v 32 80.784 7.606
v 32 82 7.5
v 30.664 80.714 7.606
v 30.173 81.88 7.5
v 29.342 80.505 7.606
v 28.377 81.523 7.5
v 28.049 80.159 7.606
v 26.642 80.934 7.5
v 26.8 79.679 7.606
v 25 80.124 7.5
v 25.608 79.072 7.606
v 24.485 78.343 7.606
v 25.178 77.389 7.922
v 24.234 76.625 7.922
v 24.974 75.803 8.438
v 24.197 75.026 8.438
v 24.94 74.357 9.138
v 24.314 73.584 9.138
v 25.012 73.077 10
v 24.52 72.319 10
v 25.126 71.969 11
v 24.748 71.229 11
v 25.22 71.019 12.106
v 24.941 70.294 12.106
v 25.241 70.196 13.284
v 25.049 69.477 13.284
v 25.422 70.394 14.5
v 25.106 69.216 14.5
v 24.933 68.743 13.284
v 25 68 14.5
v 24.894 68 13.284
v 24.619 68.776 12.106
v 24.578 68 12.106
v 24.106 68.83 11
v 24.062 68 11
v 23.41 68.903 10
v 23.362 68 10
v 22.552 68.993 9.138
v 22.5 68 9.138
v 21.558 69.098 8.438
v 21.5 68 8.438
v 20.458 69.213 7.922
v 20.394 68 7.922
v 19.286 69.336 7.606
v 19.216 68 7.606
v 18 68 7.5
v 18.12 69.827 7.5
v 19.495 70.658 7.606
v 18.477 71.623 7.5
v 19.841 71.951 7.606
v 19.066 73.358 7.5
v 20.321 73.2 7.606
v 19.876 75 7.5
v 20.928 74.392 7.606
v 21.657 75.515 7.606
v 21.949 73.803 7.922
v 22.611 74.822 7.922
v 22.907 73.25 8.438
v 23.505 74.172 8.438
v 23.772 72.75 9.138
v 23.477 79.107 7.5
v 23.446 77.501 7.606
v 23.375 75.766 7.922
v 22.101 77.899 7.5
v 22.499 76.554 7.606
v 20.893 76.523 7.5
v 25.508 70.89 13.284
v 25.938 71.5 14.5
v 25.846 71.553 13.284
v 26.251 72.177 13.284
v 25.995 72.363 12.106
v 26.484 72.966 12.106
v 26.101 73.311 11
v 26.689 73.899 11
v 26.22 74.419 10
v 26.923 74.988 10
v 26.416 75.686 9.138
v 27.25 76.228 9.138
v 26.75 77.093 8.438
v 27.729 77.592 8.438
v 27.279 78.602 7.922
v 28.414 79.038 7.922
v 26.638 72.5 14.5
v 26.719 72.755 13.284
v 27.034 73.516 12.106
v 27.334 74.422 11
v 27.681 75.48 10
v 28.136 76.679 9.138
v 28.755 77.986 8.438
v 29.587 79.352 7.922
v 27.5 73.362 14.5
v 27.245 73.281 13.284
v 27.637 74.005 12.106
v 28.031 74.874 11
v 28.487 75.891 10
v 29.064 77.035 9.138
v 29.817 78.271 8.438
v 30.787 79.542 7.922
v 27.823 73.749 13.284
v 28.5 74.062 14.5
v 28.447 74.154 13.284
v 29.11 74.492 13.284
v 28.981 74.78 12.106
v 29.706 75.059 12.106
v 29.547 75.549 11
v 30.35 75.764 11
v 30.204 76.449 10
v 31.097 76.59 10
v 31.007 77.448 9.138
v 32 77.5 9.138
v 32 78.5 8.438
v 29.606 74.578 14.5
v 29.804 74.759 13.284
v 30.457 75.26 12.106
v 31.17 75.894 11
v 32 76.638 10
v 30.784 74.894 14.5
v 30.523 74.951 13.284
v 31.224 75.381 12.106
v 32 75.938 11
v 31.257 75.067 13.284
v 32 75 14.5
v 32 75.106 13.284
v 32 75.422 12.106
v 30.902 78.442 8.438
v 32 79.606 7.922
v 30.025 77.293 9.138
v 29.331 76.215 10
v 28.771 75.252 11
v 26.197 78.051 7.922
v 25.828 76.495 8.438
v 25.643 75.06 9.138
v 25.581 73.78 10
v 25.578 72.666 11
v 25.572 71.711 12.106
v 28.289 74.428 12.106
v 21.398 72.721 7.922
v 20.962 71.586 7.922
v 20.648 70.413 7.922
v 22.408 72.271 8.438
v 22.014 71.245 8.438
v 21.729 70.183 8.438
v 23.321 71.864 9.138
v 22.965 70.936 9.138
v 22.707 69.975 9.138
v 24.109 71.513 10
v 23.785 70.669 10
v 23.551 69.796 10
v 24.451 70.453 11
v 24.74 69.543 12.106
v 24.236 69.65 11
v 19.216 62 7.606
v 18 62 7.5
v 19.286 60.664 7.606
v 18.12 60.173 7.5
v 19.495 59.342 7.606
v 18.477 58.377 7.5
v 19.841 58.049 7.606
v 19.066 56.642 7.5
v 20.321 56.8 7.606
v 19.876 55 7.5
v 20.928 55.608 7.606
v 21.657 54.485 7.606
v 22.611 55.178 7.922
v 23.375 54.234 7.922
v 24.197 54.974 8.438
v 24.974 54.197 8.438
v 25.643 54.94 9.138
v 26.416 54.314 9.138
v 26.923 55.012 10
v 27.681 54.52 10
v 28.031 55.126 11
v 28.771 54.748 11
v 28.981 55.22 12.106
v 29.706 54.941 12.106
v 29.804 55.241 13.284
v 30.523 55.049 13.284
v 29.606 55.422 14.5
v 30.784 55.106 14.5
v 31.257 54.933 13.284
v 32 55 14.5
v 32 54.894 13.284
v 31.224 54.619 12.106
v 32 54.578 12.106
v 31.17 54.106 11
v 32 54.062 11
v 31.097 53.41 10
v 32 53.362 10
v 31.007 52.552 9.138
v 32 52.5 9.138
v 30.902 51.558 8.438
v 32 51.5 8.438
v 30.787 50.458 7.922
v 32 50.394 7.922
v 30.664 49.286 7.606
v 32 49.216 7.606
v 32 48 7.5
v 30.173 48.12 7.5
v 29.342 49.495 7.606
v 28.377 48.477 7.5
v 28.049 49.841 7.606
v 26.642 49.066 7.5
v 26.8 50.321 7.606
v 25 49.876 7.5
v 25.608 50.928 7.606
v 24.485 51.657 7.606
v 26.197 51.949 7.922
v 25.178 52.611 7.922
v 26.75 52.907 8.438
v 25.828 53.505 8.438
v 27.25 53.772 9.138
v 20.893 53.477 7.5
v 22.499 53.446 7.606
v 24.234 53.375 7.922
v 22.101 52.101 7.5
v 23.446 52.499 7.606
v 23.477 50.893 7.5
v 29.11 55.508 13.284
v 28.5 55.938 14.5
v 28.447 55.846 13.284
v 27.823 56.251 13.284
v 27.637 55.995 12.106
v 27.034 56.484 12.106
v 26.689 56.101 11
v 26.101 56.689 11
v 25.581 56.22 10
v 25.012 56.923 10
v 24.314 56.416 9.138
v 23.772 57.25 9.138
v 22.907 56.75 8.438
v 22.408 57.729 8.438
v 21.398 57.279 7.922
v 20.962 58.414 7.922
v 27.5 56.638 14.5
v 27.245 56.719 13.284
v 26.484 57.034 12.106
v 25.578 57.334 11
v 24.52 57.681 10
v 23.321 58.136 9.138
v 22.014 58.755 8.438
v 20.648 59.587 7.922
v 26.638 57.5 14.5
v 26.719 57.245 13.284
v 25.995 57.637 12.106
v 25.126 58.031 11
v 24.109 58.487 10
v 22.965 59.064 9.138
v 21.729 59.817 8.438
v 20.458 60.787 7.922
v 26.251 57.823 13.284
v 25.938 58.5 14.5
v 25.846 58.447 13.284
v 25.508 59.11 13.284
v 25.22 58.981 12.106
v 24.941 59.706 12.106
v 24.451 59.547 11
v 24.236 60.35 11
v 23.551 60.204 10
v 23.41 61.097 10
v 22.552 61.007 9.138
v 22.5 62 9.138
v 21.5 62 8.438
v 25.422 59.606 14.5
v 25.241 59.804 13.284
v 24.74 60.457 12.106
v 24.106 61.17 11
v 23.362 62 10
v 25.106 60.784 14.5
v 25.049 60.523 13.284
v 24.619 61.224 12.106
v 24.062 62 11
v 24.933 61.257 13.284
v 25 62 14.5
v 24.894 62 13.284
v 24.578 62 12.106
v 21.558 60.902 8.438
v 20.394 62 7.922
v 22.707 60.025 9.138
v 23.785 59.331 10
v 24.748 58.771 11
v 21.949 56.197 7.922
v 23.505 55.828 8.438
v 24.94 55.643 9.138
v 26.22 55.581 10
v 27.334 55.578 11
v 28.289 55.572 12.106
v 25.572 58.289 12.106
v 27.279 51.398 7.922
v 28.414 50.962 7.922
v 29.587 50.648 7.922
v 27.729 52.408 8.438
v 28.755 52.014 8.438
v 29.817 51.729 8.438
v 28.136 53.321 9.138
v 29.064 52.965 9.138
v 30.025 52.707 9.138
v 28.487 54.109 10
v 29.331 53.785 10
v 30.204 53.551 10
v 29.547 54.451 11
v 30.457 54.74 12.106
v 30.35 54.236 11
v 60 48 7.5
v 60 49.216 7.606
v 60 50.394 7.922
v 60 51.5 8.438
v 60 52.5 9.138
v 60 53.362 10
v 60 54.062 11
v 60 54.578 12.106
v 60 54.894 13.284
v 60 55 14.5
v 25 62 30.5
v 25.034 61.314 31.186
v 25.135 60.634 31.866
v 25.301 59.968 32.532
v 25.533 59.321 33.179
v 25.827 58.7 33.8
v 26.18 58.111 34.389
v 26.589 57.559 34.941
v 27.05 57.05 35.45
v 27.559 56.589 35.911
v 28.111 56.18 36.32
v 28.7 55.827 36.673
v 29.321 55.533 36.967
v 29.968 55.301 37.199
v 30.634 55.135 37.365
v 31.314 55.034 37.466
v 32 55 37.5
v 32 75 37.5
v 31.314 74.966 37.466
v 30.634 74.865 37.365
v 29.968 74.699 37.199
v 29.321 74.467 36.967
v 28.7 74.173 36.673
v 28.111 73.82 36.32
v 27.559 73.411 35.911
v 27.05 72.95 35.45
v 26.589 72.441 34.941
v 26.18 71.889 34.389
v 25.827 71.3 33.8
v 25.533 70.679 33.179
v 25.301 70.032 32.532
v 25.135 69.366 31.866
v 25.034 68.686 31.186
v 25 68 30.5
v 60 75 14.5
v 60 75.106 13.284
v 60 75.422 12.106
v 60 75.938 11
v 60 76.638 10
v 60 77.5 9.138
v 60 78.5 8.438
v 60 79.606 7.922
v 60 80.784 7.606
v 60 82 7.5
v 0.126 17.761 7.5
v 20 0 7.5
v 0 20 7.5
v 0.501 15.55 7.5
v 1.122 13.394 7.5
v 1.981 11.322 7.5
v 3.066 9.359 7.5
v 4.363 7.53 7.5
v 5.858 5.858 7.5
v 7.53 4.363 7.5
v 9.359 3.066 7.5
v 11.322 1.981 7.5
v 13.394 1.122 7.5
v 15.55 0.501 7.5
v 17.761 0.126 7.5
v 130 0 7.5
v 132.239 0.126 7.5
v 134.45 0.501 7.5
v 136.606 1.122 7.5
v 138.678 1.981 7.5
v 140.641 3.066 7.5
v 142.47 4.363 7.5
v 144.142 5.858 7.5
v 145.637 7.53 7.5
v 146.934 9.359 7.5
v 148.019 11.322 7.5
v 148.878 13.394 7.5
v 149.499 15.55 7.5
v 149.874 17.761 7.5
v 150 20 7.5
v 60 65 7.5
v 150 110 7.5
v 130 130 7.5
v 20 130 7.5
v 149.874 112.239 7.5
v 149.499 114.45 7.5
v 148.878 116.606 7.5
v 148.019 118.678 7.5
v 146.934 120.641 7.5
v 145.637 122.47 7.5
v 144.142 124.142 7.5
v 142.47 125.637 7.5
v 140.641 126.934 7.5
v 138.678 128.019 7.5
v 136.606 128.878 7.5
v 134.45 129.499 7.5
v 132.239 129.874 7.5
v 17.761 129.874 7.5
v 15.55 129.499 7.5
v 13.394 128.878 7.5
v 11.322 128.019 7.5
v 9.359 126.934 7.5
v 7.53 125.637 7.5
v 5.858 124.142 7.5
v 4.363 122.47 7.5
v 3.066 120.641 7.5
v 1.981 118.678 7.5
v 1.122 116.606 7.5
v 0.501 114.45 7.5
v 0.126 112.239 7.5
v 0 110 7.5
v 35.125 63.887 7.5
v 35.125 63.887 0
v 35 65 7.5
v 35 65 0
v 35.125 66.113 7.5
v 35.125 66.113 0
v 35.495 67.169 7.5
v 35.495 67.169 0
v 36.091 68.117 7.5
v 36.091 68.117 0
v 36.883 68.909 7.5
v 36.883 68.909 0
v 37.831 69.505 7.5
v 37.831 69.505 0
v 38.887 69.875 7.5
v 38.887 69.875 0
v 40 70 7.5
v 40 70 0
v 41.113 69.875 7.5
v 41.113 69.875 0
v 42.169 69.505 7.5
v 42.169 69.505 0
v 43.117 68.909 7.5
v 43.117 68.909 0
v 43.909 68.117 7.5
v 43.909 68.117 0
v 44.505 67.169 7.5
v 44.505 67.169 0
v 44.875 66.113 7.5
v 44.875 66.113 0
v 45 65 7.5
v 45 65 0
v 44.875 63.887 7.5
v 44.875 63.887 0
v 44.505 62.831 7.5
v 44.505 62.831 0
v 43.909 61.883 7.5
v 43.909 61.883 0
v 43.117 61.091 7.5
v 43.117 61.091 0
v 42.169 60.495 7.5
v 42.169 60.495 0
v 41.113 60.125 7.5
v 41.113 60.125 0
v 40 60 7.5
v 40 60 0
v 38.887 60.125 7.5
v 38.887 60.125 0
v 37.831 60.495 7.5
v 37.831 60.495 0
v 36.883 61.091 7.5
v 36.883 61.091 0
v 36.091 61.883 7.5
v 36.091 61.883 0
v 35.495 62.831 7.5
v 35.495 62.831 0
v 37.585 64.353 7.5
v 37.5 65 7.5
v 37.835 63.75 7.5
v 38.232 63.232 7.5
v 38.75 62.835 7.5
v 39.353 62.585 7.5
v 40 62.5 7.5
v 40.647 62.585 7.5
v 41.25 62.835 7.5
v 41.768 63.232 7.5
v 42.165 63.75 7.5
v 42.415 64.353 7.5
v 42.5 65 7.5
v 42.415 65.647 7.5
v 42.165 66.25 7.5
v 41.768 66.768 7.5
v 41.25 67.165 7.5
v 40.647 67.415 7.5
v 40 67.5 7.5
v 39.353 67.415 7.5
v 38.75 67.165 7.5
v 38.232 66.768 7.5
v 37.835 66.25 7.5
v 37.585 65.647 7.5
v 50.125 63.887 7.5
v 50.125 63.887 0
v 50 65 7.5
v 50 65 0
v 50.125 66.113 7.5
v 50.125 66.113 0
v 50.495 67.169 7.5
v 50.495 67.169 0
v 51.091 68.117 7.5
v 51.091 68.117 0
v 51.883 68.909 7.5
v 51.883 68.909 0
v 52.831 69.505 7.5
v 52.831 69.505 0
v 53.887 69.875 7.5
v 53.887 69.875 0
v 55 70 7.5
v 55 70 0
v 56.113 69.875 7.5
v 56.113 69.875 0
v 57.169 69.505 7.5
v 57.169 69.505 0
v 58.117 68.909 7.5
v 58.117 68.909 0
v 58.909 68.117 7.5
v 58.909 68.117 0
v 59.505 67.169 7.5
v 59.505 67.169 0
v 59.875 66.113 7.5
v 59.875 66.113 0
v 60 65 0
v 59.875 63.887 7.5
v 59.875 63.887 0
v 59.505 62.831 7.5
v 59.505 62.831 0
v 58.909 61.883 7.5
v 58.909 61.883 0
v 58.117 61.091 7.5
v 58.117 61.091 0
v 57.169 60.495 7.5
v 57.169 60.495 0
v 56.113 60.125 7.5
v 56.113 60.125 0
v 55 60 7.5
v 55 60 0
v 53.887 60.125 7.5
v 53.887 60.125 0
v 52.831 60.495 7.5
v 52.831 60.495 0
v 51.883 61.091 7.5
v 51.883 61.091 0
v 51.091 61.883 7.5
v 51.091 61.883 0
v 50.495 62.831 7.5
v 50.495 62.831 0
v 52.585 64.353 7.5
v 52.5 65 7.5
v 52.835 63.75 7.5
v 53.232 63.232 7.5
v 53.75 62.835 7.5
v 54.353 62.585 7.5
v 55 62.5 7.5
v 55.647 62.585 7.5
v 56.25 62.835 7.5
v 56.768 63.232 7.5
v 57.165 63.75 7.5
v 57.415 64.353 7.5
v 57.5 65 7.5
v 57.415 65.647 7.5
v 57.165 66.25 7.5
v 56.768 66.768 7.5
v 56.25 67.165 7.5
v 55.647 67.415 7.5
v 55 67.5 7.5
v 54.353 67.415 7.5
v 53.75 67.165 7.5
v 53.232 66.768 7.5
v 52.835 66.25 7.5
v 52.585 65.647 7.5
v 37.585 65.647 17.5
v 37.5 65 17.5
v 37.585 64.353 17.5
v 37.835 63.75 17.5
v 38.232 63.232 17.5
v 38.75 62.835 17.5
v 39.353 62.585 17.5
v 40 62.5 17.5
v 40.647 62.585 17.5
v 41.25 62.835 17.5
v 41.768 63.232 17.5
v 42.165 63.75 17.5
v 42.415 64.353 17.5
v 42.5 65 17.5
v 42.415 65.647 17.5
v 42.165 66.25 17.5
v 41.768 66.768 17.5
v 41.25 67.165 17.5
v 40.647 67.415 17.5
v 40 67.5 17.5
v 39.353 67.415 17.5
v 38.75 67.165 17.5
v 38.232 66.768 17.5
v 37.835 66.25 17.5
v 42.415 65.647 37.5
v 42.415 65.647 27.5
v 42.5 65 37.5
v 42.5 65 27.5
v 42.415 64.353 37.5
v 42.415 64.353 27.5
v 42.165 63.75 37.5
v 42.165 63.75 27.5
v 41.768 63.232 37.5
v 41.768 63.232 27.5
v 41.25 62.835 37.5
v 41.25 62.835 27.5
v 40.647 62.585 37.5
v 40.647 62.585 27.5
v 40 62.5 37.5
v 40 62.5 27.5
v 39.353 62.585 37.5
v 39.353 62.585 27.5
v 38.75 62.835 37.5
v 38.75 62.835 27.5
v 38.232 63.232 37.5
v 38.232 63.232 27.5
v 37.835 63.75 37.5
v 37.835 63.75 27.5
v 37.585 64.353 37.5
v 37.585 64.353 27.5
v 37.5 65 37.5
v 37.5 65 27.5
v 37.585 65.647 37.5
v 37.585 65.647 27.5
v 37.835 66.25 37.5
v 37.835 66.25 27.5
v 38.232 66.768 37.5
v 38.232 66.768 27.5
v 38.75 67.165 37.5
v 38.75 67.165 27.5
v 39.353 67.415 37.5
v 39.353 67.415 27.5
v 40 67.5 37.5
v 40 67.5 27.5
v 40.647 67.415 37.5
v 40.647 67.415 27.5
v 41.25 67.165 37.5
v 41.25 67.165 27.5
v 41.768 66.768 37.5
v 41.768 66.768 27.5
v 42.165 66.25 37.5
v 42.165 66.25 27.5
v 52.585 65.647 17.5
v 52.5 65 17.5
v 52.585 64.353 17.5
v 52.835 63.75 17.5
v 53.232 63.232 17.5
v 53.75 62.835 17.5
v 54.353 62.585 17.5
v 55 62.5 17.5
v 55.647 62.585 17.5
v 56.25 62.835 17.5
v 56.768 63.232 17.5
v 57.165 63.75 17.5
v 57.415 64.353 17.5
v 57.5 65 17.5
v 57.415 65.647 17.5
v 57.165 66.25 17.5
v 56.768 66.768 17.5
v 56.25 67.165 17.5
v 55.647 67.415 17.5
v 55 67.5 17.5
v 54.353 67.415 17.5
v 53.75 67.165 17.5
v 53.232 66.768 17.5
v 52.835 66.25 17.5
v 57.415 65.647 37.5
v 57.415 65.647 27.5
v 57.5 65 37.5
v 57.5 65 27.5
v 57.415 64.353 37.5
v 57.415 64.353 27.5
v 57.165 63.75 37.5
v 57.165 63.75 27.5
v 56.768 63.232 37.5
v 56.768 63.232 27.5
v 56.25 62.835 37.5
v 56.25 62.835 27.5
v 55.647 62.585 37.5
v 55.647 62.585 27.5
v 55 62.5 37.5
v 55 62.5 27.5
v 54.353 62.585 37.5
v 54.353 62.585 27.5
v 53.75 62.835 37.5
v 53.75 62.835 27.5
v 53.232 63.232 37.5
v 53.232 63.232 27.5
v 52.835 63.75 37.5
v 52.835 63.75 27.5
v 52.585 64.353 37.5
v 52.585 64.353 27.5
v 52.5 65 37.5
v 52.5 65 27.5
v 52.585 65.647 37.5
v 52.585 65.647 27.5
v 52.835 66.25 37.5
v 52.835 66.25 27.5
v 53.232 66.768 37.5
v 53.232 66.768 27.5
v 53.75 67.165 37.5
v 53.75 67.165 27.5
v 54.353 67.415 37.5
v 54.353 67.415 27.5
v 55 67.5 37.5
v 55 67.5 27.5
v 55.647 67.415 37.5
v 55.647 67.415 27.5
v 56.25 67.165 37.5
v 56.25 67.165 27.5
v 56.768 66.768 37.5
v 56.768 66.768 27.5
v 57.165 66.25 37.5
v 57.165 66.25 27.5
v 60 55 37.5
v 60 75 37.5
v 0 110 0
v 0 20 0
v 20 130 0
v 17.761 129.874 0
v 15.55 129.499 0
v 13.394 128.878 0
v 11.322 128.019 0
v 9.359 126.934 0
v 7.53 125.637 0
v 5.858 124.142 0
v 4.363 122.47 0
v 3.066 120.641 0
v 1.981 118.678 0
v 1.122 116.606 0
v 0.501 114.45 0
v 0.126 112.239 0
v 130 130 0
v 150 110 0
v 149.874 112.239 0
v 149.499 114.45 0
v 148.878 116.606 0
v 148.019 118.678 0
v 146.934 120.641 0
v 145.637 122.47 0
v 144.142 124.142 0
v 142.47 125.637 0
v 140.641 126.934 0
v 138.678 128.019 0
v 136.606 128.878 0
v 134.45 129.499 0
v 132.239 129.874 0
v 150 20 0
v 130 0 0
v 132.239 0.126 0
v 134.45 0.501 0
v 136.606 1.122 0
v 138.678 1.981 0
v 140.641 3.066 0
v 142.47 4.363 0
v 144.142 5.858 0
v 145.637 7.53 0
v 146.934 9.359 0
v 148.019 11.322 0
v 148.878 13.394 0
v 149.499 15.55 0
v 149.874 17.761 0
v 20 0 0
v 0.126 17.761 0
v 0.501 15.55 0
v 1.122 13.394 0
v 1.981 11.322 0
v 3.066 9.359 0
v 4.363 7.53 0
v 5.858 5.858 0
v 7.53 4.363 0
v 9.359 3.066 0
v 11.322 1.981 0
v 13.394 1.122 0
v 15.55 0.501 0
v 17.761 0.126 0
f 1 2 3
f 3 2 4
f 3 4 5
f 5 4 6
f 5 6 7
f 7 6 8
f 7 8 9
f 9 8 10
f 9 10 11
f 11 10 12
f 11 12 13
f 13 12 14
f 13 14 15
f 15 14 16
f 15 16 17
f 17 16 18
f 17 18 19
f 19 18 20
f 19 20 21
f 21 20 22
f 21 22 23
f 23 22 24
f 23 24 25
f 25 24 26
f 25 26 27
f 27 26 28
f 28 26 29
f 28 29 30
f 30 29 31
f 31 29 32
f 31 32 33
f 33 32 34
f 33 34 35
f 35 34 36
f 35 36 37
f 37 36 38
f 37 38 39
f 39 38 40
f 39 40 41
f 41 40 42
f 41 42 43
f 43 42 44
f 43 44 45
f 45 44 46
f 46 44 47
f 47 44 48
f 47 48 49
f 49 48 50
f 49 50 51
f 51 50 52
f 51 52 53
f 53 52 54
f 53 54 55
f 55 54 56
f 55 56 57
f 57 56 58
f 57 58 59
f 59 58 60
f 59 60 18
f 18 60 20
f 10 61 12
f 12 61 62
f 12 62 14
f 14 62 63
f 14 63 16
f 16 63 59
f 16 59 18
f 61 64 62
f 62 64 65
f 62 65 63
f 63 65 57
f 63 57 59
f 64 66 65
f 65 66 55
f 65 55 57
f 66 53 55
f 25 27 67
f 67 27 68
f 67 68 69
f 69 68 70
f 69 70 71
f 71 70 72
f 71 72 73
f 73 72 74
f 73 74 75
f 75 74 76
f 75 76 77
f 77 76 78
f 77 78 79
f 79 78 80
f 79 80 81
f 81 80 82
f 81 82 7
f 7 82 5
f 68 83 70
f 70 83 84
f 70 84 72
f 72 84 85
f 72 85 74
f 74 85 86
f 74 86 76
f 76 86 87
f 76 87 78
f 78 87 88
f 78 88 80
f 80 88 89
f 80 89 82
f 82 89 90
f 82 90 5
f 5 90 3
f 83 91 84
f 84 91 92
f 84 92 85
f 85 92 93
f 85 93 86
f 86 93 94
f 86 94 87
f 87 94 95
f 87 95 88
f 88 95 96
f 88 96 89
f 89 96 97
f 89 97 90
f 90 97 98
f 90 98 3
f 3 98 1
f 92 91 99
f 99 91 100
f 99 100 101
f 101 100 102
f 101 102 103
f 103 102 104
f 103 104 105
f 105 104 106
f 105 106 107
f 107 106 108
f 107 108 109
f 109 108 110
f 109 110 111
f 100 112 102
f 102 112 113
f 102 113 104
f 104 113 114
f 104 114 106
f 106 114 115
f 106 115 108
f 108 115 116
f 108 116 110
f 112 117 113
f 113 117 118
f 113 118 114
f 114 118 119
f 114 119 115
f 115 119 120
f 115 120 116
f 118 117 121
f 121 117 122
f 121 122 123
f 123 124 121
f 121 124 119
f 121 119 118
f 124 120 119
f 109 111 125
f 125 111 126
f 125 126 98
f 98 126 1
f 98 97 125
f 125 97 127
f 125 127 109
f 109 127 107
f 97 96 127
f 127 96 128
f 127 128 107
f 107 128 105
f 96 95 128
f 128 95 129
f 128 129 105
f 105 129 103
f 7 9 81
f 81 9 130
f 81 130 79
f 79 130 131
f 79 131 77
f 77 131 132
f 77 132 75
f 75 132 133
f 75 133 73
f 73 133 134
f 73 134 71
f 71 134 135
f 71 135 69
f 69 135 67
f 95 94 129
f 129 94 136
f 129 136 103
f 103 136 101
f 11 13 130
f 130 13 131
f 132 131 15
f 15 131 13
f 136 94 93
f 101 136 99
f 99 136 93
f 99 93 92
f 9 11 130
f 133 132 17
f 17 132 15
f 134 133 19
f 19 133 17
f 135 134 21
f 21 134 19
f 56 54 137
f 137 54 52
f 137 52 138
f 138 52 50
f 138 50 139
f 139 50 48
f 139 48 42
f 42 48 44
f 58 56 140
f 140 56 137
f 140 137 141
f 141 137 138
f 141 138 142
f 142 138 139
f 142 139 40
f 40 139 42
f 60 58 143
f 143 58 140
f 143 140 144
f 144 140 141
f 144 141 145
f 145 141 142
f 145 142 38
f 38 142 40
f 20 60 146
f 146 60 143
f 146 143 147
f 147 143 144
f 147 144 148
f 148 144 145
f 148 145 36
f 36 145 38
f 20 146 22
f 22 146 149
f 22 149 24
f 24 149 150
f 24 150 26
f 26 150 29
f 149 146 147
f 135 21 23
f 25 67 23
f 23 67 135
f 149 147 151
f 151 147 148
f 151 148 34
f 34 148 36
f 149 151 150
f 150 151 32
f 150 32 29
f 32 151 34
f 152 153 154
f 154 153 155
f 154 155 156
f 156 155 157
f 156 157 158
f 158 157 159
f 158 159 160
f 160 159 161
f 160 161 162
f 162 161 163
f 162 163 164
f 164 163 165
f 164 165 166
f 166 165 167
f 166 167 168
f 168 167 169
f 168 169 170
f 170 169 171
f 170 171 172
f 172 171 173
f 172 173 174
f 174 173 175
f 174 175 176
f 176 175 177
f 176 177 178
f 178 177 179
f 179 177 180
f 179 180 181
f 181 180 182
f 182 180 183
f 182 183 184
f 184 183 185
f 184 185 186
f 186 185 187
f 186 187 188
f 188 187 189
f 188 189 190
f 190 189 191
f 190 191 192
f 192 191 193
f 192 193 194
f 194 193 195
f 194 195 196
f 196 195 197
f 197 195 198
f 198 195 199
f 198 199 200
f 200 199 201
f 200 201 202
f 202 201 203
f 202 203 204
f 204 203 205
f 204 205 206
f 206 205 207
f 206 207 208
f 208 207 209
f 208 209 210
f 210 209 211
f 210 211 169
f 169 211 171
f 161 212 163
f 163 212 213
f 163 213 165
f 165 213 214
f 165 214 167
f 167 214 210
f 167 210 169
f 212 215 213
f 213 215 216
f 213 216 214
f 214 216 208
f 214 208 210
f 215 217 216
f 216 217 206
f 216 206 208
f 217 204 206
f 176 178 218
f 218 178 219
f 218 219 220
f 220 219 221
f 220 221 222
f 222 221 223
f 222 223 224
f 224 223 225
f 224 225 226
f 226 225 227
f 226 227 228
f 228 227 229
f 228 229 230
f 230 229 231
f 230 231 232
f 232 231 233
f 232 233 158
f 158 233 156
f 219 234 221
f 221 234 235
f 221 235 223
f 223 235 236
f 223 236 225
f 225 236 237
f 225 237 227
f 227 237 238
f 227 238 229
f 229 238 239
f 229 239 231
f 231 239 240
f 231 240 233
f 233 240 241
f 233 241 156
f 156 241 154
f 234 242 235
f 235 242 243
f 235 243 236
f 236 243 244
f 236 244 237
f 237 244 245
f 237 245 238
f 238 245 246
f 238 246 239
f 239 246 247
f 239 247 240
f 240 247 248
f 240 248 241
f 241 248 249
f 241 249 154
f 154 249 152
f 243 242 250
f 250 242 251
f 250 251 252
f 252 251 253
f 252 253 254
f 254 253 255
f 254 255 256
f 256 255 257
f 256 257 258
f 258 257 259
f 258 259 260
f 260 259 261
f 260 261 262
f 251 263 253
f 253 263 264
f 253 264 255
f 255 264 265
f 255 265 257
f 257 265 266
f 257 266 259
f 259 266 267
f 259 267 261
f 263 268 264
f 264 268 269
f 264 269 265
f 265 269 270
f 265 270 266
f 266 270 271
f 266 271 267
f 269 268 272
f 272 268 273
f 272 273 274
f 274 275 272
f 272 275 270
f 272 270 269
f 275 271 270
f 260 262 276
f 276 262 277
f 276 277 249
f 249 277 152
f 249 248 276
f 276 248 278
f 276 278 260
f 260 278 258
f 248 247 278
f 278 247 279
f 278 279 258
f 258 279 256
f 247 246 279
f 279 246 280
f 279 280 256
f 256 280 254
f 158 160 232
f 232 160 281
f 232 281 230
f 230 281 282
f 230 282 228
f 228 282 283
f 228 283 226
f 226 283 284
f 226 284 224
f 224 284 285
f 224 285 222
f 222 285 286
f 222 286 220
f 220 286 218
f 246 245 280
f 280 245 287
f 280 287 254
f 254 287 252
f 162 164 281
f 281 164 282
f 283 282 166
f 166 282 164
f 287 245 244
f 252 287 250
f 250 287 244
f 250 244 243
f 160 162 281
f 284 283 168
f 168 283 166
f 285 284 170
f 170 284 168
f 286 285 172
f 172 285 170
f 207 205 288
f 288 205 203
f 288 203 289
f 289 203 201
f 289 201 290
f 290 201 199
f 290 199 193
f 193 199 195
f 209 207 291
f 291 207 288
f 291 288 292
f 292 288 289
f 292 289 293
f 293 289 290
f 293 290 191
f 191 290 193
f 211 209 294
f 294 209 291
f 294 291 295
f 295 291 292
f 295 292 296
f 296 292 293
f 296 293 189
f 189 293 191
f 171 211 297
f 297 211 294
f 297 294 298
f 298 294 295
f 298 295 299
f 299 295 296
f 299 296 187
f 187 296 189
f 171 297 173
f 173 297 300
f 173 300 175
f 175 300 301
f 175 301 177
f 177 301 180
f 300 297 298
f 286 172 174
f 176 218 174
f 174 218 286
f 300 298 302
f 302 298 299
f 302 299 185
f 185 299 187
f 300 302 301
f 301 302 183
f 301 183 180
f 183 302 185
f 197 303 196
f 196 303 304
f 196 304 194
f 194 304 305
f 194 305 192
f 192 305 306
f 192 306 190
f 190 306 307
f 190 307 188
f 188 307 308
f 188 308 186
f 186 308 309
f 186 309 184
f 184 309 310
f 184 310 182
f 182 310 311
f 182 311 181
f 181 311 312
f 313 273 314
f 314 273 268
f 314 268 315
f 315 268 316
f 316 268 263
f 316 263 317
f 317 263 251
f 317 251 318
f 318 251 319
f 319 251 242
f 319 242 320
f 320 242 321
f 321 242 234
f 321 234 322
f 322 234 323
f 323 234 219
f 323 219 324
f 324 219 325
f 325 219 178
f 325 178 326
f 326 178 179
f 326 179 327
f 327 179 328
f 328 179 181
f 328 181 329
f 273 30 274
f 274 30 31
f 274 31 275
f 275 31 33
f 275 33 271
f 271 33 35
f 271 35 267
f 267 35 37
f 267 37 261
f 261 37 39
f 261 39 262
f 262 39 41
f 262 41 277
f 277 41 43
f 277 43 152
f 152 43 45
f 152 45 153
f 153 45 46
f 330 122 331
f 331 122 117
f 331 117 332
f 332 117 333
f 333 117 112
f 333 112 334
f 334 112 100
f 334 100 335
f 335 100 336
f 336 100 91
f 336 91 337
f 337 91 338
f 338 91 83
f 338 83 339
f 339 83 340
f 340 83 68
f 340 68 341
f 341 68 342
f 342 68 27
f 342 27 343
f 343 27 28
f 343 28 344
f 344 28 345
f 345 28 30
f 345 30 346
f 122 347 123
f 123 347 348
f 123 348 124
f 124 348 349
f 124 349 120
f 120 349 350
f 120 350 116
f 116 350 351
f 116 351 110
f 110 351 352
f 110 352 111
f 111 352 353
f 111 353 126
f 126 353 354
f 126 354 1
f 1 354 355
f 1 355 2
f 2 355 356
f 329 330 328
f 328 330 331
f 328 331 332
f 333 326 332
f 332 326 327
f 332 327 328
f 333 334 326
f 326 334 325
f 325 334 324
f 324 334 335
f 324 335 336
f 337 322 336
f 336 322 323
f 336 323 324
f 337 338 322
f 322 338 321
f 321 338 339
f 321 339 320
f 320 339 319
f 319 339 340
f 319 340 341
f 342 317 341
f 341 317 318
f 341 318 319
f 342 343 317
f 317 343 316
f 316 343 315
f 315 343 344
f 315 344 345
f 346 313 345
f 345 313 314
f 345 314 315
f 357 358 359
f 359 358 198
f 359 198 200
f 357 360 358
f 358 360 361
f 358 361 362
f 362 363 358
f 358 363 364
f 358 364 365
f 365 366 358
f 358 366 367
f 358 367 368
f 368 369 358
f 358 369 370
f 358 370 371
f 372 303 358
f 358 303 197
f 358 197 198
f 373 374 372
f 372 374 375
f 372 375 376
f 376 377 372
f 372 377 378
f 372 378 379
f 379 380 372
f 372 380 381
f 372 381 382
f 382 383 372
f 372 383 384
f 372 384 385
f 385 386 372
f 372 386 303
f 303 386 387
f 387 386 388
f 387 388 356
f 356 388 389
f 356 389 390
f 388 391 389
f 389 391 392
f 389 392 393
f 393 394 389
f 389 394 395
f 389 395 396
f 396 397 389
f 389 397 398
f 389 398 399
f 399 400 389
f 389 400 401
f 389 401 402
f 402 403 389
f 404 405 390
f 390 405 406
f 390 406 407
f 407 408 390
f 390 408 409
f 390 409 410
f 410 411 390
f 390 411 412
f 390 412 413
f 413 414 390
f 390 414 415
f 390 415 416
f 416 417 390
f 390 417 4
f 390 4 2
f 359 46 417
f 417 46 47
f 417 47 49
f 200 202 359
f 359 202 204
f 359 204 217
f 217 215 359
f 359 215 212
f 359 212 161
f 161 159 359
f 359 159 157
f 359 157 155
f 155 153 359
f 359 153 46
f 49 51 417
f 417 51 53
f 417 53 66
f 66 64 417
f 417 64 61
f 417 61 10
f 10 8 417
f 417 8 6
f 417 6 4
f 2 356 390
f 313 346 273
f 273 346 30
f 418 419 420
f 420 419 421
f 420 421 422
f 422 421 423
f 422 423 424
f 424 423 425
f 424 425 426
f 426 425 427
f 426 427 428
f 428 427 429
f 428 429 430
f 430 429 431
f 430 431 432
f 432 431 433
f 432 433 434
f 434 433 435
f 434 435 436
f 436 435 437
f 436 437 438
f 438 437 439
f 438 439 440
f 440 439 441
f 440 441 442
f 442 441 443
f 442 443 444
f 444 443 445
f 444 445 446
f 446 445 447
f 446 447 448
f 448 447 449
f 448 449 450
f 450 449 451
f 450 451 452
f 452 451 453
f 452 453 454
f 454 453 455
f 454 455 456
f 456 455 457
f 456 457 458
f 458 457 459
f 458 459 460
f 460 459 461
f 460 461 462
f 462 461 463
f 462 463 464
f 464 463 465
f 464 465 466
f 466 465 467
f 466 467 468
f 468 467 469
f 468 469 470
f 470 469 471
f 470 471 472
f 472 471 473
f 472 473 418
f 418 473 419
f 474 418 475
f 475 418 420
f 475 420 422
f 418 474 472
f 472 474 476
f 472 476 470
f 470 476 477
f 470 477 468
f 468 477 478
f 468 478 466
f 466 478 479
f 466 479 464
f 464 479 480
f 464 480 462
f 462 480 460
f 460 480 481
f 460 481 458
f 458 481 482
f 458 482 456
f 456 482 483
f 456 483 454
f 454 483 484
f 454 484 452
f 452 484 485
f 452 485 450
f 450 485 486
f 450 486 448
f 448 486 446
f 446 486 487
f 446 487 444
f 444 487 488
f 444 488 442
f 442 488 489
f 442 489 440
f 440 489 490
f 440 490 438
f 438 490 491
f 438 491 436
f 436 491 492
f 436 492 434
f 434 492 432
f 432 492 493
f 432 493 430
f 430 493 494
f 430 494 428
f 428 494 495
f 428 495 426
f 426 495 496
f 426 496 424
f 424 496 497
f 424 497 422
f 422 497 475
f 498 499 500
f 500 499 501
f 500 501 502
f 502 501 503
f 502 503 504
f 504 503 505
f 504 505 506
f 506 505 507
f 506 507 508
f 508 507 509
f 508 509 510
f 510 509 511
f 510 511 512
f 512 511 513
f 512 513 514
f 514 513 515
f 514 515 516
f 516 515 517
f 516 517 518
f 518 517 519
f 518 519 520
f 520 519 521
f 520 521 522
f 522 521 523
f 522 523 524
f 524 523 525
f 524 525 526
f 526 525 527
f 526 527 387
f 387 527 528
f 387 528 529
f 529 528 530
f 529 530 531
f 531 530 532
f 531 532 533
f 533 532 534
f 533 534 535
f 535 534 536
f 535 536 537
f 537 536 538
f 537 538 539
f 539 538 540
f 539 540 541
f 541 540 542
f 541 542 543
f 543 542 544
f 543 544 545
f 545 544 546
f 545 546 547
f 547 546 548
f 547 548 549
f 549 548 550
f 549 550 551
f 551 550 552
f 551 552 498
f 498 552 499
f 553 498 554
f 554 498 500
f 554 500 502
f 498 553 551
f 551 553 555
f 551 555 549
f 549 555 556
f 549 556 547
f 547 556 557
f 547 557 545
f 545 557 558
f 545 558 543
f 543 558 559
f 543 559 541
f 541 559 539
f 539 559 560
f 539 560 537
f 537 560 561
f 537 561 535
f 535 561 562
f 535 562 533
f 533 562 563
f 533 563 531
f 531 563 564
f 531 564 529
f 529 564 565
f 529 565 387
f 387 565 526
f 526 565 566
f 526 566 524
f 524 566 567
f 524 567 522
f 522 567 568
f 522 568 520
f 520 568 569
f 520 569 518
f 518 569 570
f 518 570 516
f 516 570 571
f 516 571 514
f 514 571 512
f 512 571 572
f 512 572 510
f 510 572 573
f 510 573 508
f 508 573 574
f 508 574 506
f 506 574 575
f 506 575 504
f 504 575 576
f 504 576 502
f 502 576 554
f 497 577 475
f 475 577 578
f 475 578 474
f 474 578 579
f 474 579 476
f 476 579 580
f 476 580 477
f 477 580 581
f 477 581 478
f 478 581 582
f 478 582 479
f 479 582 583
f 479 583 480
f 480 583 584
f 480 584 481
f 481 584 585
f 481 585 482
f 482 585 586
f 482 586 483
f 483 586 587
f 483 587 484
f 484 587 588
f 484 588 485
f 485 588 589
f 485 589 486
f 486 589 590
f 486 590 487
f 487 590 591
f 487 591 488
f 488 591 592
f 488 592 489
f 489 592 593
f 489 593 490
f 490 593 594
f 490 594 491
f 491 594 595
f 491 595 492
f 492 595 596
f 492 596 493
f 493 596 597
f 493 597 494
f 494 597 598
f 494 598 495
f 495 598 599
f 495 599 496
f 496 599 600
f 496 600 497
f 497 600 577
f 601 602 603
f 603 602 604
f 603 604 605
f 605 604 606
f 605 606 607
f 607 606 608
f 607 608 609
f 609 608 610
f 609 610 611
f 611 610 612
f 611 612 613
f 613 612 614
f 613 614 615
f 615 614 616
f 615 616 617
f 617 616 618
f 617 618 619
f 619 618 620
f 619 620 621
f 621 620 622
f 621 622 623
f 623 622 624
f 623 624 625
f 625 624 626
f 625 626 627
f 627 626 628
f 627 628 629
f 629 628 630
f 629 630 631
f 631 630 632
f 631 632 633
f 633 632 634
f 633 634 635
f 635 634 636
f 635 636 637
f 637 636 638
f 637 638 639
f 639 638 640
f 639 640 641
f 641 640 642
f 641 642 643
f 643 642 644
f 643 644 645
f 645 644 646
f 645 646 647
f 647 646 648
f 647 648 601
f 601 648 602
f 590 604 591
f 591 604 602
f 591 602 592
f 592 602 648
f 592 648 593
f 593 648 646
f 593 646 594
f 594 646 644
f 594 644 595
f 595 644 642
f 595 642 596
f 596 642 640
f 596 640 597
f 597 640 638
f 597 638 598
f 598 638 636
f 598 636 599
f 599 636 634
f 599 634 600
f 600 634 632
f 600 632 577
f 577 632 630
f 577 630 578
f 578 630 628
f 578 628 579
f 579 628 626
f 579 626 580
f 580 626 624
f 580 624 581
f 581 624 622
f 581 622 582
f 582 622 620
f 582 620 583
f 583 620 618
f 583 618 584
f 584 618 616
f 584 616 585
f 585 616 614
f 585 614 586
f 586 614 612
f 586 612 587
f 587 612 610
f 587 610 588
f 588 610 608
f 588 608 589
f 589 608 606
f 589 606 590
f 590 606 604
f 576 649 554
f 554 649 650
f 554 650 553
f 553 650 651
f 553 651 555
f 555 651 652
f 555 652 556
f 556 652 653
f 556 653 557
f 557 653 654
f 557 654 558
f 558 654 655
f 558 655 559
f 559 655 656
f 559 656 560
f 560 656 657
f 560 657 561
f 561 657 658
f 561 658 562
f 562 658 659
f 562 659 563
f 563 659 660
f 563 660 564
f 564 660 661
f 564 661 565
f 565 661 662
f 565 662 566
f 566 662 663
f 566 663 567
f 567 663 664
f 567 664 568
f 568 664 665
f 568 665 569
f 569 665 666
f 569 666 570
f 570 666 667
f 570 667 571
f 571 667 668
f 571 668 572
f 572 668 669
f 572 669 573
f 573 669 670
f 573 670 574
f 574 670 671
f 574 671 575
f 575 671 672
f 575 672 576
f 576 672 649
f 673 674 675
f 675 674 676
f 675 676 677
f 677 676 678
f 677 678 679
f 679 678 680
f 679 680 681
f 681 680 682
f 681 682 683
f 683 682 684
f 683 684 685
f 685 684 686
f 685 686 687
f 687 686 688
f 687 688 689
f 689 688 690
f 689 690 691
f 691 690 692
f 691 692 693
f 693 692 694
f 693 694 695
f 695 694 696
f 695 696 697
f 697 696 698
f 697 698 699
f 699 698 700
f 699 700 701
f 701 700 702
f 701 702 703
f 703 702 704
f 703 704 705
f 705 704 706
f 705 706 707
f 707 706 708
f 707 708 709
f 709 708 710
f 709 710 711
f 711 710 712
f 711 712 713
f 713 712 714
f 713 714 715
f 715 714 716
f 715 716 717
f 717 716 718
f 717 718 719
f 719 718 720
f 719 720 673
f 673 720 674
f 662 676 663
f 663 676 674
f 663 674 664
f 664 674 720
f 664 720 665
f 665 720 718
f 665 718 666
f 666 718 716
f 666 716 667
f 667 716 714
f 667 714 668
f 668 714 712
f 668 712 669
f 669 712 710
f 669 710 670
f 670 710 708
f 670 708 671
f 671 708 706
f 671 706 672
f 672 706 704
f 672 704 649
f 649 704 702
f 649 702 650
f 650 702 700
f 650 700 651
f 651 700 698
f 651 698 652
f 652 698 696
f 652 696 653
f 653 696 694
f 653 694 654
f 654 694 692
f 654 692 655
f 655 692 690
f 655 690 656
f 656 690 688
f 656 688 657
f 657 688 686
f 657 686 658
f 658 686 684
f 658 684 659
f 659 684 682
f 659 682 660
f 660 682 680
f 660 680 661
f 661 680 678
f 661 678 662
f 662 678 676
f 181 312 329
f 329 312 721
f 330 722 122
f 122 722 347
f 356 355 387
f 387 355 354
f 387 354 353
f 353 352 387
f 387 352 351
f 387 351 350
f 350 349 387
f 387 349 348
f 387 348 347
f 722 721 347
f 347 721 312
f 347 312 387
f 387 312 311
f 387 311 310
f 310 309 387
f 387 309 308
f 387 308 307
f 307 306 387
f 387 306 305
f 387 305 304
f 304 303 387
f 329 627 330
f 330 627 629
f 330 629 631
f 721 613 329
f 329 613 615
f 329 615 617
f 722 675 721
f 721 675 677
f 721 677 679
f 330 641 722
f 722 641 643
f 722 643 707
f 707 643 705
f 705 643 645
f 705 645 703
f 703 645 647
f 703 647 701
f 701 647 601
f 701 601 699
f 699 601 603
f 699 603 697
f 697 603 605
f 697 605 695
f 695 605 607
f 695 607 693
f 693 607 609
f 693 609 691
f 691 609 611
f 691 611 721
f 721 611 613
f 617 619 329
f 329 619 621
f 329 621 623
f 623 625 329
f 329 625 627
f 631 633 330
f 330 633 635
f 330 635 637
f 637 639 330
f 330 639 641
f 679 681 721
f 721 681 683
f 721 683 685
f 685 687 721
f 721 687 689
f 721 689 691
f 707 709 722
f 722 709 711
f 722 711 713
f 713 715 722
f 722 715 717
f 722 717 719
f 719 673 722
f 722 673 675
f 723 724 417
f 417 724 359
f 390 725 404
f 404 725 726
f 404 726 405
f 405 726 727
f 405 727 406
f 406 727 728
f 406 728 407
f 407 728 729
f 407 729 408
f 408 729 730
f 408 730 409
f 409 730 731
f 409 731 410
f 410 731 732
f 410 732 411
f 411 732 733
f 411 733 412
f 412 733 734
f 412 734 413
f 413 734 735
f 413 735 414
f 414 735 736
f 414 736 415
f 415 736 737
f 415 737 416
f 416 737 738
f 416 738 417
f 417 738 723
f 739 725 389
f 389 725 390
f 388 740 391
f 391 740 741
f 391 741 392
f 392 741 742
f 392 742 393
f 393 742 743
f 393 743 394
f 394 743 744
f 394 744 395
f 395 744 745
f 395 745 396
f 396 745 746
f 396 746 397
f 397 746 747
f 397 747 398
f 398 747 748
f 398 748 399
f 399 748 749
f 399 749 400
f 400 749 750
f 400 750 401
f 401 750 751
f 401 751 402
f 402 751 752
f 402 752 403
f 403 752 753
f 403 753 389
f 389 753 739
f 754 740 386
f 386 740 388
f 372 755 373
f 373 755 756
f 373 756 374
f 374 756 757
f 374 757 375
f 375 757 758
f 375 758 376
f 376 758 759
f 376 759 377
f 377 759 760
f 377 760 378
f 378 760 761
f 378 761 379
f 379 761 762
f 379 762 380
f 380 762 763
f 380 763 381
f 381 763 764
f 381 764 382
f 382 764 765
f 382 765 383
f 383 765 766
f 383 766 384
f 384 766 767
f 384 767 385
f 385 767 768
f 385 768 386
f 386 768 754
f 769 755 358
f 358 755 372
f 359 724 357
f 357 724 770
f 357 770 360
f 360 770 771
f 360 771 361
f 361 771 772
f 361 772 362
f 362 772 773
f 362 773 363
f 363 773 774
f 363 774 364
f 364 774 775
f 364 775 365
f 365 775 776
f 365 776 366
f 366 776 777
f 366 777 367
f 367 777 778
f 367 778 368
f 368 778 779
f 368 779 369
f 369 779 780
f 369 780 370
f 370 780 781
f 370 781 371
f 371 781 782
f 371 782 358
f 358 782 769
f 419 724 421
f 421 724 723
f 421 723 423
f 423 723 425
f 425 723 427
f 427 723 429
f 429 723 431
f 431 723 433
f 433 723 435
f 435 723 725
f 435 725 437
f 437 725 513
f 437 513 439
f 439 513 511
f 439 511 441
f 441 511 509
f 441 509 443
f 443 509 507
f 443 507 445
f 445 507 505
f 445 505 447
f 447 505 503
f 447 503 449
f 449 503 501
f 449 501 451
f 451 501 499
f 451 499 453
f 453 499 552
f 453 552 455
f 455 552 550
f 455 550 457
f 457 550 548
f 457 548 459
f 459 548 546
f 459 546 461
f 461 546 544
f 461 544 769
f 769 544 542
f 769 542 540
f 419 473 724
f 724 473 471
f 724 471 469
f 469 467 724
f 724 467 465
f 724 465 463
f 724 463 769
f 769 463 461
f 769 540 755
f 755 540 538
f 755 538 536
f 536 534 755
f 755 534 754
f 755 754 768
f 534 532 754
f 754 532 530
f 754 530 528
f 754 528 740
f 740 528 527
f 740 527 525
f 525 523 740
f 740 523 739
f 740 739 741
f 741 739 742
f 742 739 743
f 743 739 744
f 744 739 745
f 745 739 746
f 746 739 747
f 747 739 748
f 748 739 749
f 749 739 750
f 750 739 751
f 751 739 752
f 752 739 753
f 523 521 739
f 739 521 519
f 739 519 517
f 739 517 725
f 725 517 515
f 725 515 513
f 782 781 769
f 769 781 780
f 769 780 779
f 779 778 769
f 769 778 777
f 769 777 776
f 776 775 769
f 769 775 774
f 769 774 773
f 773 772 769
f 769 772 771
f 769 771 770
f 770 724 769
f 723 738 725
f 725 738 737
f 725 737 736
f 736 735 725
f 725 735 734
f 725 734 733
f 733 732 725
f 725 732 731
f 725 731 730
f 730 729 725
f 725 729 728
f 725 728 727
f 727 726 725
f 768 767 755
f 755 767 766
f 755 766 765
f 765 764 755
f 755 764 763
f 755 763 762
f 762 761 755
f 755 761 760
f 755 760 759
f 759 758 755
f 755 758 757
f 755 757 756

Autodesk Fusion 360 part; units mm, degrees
sketch "Sketch1" plane through (0, 0, 0) normal (0, 0, 1) x (1, 0, 0)
  line L0 (20, 0) -> (130, 0)
  line L1 (150, 20) -> (150, 110)
  line L2 (130, 130) -> (20, 130)
  line L3 (0, 110) -> (0, 20)
  arc A0 (20, 130) -> (0, 110) centre (20, 110) ccw
  arc A1 (150, 110) -> (130, 130) centre (130, 110) ccw
  arc A2 (130, 0) -> (150, 20) centre (130, 20) ccw
  arc A3 (0, 20) -> (20, 0) centre (20, 20) ccw
  point P0 (150, 0)
  point P1 (0, 130)
  dimension "d1" = 150
  dimension "d2" = 130
  dimension "d3" = 20
extrude "Extrude1" add sketch "Sketch1" along normal blind 7.5
sketch "Sketch2" plane through (0, 0, 7.5) normal (0, 0, 1) x (-1, 0, 0)
  arc A0 (0, -20) -> (-20, 0) centre (-20, -20) ccw
  line L0 (-20, 0) -> (-130, 0)
  arc A1 (-130, 0) -> (-150, -20) centre (-130, -20) ccw
  line L1 (-150, -20) -> (-150, -110)
  arc A2 (-150, -110) -> (-130, -130) centre (-130, -110) ccw
  line L2 (-130, -130) -> (-20, -130)
  arc A3 (-20, -130) -> (0, -110) centre (-20, -110) ccw
  line L3 (0, -110) -> (0, -20)
  line L4 (-75, -130) -> (-75, 0) construction
  line L5 (0, -65) -> (-150, -65) construction
  line L6 (-115, -58.75) -> (-35, -58.75) construction
  line L7 (-35, -58.75) -> (-35, -71.25) construction
  line L8 (-35, -71.25) -> (-115, -71.25) construction
  line L9 (-115, -71.25) -> (-115, -58.75) construction
  line L10 (-115, -58.75) -> (-35, -71.25) construction
  line L11 (-35, -58.75) -> (-115, -71.25) construction
  line L12 (-35, -65) -> (-60, -65) construction
  line L13 (-60, -65) -> (-60, -75)
  line L14 (-60, -75) -> (-25, -75)
  line L15 (-60, -65) -> (-60, -55)
  line L16 (-60, -55) -> (-25, -55)
  line L17 (-25, -55) -> (-25, -75)
  point P0 (-75, -65)
  dimension "d6" = 80
  dimension "d7" = 12.5
  dimension "d10" = 25
  dimension "d11" = 10
  dimension "d12" = 10
extrude "Extrude2" add sketch "Sketch2" along normal blind 30 contours L13 L14 L15 L16 L17
sketch "Sketch3" plane through (0, 0, 37.5) normal (0, 0, 1) x (-1, 0, 0)
  line L0 (-60, -55) -> (-60, -75)
  line L1 (-60, -75) -> (-25, -75)
  line L2 (-25, -75) -> (-25, -55)
  line L3 (-25, -55) -> (-60, -55)
  line L4 (-60, -65) -> (-35, -65) construction
  line L5 (-35, -65) -> (-40, -65) construction
  circle A0 centre (-40, -65) radius 2.5
  circle A1 centre (-55, -65) radius 2.5
  dimension "d15" = 5
  dimension "d18" = -15
  dimension "d19" = 0
extrude "Extrude3" cut sketch "Sketch3" against normal blind 37.5 contours A0 | A1
sketch "Sketch4" plane through (0, 0, 0) normal (0, 0, -1) x (1, 0, 0)
  circle A0 centre (40, -65) radius 2.5
  circle A1 centre (55, -65) radius 2.5
  arc A2 (20, 0) -> (0, -20) centre (20, -20) ccw
  line L0 (0, -20) -> (0, -110)
  arc A3 (0, -110) -> (20, -130) centre (20, -110) ccw
  line L1 (20, -130) -> (130, -130)
  arc A4 (130, -130) -> (150, -110) centre (130, -110) ccw
  line L2 (150, -110) -> (150, -20)
  arc A5 (150, -20) -> (130, 0) centre (130, -20) ccw
  line L3 (130, 0) -> (20, 0)
  circle A6 centre (40, -65) radius 5
  circle A7 centre (55, -65) radius 5
  dimension "d22" = 10
  dimension "d23" = 10
extrude "Extrude4" cut sketch "Sketch4" against normal blind 7.5 contours A6 | A7
fillet "Fillet1" radius 7 6 edges at (25, 65, 7.5) (42.5, 55, 7.5) (25, 55, 22.5) (25, 75, 22.5) (25, 65, 37.5) (42.5, 75, 7.5)
